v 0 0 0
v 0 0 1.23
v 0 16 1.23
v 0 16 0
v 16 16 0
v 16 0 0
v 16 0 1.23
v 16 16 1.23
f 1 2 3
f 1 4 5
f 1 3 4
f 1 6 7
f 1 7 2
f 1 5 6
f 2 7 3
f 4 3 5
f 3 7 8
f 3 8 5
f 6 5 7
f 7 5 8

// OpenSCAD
/* Warning, this is a very basic generator with a lot of approximation 
input data : [TFBGA, 4TB, 16x16x1.23mm, 243, , B, C04-21556B]
generated by com.zoubworld.electronics.cad.model3d.Basic
Date : Sun Feb 15 10:50:49 CET 2026
*/

//body
color("black")
translate([0,0,0])
cube([16.0,16.0,1.23], center=false);
